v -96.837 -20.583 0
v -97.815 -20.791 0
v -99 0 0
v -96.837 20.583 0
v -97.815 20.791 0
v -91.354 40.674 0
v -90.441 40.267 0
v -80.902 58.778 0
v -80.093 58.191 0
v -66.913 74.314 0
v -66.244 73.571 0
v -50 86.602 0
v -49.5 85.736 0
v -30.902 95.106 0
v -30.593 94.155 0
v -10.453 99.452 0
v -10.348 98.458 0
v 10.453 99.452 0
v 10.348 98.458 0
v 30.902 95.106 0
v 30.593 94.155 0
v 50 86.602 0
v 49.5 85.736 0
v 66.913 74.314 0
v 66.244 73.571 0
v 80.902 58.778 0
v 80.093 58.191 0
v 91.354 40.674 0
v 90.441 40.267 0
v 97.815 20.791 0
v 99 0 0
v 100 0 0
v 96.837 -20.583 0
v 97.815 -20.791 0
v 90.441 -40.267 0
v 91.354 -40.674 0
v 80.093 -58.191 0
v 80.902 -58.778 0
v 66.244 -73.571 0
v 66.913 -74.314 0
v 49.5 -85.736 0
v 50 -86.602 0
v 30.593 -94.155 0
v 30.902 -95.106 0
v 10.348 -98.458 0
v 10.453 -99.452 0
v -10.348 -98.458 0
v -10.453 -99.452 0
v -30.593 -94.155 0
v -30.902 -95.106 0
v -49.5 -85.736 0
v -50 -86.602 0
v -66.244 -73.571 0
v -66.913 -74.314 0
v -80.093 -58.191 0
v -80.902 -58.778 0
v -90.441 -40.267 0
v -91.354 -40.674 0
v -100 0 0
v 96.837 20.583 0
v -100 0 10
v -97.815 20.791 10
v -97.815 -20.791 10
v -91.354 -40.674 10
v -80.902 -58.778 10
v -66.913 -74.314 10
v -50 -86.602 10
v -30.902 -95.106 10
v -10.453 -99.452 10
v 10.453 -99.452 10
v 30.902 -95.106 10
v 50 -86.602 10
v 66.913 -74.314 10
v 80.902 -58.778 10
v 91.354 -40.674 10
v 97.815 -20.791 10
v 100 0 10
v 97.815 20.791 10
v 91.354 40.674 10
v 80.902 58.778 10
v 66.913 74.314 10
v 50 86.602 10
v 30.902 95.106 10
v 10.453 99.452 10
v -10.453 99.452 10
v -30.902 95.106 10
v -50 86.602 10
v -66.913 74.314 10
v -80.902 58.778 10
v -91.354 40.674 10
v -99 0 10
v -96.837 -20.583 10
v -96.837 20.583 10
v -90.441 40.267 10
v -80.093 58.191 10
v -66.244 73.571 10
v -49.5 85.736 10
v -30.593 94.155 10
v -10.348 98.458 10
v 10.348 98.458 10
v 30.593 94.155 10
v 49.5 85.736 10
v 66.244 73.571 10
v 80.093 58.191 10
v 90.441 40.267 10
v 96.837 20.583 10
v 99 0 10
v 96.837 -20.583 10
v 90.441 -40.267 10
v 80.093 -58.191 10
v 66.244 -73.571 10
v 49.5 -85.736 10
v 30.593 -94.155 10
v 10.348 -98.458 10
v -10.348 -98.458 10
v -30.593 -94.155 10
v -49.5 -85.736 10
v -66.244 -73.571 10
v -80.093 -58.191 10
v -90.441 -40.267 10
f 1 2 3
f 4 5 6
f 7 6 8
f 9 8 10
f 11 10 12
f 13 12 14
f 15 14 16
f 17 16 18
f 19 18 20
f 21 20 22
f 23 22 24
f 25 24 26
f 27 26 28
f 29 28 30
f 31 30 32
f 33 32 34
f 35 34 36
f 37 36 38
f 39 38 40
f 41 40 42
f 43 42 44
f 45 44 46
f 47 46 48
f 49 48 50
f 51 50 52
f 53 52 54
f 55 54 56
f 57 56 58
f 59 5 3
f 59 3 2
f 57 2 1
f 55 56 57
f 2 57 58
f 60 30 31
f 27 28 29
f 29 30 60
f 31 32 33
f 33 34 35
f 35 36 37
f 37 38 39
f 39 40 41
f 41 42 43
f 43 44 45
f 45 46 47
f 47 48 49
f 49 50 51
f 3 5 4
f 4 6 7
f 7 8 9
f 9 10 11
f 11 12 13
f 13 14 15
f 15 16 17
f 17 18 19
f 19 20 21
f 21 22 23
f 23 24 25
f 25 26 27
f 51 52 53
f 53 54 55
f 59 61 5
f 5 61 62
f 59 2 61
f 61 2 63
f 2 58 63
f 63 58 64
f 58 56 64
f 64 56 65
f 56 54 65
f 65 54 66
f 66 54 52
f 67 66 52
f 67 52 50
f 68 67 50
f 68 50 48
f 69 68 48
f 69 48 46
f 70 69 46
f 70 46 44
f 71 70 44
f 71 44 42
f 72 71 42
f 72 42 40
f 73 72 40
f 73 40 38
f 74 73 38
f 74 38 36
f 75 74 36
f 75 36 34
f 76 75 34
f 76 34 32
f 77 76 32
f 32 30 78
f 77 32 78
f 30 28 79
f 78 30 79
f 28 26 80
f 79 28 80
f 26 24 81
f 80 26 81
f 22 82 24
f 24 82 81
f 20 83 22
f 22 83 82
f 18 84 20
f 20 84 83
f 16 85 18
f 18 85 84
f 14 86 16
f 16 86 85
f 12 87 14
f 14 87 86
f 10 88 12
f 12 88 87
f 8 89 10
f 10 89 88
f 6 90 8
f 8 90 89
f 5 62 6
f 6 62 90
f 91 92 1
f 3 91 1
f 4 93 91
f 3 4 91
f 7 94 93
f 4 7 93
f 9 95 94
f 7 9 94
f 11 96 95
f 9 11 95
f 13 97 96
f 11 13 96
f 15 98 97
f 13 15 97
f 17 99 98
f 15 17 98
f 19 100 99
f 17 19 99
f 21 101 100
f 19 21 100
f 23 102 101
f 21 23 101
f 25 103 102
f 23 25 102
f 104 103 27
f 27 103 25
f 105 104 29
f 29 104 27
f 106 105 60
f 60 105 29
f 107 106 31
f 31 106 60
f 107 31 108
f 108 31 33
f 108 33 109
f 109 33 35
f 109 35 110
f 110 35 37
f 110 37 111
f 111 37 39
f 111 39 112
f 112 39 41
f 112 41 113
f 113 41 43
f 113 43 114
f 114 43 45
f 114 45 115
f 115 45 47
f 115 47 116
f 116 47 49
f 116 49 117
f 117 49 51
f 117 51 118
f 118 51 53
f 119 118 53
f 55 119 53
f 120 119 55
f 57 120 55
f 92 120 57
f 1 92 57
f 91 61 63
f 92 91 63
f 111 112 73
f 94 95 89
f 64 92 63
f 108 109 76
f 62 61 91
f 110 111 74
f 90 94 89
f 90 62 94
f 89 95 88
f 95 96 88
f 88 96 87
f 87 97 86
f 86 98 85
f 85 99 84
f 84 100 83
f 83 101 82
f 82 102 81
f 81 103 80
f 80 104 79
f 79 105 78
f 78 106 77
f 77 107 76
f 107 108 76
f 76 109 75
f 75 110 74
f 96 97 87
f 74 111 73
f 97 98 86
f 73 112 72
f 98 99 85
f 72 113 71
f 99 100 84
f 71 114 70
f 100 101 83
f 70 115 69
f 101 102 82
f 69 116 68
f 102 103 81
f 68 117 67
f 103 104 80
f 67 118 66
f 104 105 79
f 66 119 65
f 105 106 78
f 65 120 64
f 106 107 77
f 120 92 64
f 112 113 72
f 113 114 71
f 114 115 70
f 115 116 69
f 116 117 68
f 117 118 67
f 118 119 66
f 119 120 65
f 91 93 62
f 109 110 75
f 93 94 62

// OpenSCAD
difference (){
	cylinder (r=100,h=10);
	cylinder (r=99,h=10);
}
